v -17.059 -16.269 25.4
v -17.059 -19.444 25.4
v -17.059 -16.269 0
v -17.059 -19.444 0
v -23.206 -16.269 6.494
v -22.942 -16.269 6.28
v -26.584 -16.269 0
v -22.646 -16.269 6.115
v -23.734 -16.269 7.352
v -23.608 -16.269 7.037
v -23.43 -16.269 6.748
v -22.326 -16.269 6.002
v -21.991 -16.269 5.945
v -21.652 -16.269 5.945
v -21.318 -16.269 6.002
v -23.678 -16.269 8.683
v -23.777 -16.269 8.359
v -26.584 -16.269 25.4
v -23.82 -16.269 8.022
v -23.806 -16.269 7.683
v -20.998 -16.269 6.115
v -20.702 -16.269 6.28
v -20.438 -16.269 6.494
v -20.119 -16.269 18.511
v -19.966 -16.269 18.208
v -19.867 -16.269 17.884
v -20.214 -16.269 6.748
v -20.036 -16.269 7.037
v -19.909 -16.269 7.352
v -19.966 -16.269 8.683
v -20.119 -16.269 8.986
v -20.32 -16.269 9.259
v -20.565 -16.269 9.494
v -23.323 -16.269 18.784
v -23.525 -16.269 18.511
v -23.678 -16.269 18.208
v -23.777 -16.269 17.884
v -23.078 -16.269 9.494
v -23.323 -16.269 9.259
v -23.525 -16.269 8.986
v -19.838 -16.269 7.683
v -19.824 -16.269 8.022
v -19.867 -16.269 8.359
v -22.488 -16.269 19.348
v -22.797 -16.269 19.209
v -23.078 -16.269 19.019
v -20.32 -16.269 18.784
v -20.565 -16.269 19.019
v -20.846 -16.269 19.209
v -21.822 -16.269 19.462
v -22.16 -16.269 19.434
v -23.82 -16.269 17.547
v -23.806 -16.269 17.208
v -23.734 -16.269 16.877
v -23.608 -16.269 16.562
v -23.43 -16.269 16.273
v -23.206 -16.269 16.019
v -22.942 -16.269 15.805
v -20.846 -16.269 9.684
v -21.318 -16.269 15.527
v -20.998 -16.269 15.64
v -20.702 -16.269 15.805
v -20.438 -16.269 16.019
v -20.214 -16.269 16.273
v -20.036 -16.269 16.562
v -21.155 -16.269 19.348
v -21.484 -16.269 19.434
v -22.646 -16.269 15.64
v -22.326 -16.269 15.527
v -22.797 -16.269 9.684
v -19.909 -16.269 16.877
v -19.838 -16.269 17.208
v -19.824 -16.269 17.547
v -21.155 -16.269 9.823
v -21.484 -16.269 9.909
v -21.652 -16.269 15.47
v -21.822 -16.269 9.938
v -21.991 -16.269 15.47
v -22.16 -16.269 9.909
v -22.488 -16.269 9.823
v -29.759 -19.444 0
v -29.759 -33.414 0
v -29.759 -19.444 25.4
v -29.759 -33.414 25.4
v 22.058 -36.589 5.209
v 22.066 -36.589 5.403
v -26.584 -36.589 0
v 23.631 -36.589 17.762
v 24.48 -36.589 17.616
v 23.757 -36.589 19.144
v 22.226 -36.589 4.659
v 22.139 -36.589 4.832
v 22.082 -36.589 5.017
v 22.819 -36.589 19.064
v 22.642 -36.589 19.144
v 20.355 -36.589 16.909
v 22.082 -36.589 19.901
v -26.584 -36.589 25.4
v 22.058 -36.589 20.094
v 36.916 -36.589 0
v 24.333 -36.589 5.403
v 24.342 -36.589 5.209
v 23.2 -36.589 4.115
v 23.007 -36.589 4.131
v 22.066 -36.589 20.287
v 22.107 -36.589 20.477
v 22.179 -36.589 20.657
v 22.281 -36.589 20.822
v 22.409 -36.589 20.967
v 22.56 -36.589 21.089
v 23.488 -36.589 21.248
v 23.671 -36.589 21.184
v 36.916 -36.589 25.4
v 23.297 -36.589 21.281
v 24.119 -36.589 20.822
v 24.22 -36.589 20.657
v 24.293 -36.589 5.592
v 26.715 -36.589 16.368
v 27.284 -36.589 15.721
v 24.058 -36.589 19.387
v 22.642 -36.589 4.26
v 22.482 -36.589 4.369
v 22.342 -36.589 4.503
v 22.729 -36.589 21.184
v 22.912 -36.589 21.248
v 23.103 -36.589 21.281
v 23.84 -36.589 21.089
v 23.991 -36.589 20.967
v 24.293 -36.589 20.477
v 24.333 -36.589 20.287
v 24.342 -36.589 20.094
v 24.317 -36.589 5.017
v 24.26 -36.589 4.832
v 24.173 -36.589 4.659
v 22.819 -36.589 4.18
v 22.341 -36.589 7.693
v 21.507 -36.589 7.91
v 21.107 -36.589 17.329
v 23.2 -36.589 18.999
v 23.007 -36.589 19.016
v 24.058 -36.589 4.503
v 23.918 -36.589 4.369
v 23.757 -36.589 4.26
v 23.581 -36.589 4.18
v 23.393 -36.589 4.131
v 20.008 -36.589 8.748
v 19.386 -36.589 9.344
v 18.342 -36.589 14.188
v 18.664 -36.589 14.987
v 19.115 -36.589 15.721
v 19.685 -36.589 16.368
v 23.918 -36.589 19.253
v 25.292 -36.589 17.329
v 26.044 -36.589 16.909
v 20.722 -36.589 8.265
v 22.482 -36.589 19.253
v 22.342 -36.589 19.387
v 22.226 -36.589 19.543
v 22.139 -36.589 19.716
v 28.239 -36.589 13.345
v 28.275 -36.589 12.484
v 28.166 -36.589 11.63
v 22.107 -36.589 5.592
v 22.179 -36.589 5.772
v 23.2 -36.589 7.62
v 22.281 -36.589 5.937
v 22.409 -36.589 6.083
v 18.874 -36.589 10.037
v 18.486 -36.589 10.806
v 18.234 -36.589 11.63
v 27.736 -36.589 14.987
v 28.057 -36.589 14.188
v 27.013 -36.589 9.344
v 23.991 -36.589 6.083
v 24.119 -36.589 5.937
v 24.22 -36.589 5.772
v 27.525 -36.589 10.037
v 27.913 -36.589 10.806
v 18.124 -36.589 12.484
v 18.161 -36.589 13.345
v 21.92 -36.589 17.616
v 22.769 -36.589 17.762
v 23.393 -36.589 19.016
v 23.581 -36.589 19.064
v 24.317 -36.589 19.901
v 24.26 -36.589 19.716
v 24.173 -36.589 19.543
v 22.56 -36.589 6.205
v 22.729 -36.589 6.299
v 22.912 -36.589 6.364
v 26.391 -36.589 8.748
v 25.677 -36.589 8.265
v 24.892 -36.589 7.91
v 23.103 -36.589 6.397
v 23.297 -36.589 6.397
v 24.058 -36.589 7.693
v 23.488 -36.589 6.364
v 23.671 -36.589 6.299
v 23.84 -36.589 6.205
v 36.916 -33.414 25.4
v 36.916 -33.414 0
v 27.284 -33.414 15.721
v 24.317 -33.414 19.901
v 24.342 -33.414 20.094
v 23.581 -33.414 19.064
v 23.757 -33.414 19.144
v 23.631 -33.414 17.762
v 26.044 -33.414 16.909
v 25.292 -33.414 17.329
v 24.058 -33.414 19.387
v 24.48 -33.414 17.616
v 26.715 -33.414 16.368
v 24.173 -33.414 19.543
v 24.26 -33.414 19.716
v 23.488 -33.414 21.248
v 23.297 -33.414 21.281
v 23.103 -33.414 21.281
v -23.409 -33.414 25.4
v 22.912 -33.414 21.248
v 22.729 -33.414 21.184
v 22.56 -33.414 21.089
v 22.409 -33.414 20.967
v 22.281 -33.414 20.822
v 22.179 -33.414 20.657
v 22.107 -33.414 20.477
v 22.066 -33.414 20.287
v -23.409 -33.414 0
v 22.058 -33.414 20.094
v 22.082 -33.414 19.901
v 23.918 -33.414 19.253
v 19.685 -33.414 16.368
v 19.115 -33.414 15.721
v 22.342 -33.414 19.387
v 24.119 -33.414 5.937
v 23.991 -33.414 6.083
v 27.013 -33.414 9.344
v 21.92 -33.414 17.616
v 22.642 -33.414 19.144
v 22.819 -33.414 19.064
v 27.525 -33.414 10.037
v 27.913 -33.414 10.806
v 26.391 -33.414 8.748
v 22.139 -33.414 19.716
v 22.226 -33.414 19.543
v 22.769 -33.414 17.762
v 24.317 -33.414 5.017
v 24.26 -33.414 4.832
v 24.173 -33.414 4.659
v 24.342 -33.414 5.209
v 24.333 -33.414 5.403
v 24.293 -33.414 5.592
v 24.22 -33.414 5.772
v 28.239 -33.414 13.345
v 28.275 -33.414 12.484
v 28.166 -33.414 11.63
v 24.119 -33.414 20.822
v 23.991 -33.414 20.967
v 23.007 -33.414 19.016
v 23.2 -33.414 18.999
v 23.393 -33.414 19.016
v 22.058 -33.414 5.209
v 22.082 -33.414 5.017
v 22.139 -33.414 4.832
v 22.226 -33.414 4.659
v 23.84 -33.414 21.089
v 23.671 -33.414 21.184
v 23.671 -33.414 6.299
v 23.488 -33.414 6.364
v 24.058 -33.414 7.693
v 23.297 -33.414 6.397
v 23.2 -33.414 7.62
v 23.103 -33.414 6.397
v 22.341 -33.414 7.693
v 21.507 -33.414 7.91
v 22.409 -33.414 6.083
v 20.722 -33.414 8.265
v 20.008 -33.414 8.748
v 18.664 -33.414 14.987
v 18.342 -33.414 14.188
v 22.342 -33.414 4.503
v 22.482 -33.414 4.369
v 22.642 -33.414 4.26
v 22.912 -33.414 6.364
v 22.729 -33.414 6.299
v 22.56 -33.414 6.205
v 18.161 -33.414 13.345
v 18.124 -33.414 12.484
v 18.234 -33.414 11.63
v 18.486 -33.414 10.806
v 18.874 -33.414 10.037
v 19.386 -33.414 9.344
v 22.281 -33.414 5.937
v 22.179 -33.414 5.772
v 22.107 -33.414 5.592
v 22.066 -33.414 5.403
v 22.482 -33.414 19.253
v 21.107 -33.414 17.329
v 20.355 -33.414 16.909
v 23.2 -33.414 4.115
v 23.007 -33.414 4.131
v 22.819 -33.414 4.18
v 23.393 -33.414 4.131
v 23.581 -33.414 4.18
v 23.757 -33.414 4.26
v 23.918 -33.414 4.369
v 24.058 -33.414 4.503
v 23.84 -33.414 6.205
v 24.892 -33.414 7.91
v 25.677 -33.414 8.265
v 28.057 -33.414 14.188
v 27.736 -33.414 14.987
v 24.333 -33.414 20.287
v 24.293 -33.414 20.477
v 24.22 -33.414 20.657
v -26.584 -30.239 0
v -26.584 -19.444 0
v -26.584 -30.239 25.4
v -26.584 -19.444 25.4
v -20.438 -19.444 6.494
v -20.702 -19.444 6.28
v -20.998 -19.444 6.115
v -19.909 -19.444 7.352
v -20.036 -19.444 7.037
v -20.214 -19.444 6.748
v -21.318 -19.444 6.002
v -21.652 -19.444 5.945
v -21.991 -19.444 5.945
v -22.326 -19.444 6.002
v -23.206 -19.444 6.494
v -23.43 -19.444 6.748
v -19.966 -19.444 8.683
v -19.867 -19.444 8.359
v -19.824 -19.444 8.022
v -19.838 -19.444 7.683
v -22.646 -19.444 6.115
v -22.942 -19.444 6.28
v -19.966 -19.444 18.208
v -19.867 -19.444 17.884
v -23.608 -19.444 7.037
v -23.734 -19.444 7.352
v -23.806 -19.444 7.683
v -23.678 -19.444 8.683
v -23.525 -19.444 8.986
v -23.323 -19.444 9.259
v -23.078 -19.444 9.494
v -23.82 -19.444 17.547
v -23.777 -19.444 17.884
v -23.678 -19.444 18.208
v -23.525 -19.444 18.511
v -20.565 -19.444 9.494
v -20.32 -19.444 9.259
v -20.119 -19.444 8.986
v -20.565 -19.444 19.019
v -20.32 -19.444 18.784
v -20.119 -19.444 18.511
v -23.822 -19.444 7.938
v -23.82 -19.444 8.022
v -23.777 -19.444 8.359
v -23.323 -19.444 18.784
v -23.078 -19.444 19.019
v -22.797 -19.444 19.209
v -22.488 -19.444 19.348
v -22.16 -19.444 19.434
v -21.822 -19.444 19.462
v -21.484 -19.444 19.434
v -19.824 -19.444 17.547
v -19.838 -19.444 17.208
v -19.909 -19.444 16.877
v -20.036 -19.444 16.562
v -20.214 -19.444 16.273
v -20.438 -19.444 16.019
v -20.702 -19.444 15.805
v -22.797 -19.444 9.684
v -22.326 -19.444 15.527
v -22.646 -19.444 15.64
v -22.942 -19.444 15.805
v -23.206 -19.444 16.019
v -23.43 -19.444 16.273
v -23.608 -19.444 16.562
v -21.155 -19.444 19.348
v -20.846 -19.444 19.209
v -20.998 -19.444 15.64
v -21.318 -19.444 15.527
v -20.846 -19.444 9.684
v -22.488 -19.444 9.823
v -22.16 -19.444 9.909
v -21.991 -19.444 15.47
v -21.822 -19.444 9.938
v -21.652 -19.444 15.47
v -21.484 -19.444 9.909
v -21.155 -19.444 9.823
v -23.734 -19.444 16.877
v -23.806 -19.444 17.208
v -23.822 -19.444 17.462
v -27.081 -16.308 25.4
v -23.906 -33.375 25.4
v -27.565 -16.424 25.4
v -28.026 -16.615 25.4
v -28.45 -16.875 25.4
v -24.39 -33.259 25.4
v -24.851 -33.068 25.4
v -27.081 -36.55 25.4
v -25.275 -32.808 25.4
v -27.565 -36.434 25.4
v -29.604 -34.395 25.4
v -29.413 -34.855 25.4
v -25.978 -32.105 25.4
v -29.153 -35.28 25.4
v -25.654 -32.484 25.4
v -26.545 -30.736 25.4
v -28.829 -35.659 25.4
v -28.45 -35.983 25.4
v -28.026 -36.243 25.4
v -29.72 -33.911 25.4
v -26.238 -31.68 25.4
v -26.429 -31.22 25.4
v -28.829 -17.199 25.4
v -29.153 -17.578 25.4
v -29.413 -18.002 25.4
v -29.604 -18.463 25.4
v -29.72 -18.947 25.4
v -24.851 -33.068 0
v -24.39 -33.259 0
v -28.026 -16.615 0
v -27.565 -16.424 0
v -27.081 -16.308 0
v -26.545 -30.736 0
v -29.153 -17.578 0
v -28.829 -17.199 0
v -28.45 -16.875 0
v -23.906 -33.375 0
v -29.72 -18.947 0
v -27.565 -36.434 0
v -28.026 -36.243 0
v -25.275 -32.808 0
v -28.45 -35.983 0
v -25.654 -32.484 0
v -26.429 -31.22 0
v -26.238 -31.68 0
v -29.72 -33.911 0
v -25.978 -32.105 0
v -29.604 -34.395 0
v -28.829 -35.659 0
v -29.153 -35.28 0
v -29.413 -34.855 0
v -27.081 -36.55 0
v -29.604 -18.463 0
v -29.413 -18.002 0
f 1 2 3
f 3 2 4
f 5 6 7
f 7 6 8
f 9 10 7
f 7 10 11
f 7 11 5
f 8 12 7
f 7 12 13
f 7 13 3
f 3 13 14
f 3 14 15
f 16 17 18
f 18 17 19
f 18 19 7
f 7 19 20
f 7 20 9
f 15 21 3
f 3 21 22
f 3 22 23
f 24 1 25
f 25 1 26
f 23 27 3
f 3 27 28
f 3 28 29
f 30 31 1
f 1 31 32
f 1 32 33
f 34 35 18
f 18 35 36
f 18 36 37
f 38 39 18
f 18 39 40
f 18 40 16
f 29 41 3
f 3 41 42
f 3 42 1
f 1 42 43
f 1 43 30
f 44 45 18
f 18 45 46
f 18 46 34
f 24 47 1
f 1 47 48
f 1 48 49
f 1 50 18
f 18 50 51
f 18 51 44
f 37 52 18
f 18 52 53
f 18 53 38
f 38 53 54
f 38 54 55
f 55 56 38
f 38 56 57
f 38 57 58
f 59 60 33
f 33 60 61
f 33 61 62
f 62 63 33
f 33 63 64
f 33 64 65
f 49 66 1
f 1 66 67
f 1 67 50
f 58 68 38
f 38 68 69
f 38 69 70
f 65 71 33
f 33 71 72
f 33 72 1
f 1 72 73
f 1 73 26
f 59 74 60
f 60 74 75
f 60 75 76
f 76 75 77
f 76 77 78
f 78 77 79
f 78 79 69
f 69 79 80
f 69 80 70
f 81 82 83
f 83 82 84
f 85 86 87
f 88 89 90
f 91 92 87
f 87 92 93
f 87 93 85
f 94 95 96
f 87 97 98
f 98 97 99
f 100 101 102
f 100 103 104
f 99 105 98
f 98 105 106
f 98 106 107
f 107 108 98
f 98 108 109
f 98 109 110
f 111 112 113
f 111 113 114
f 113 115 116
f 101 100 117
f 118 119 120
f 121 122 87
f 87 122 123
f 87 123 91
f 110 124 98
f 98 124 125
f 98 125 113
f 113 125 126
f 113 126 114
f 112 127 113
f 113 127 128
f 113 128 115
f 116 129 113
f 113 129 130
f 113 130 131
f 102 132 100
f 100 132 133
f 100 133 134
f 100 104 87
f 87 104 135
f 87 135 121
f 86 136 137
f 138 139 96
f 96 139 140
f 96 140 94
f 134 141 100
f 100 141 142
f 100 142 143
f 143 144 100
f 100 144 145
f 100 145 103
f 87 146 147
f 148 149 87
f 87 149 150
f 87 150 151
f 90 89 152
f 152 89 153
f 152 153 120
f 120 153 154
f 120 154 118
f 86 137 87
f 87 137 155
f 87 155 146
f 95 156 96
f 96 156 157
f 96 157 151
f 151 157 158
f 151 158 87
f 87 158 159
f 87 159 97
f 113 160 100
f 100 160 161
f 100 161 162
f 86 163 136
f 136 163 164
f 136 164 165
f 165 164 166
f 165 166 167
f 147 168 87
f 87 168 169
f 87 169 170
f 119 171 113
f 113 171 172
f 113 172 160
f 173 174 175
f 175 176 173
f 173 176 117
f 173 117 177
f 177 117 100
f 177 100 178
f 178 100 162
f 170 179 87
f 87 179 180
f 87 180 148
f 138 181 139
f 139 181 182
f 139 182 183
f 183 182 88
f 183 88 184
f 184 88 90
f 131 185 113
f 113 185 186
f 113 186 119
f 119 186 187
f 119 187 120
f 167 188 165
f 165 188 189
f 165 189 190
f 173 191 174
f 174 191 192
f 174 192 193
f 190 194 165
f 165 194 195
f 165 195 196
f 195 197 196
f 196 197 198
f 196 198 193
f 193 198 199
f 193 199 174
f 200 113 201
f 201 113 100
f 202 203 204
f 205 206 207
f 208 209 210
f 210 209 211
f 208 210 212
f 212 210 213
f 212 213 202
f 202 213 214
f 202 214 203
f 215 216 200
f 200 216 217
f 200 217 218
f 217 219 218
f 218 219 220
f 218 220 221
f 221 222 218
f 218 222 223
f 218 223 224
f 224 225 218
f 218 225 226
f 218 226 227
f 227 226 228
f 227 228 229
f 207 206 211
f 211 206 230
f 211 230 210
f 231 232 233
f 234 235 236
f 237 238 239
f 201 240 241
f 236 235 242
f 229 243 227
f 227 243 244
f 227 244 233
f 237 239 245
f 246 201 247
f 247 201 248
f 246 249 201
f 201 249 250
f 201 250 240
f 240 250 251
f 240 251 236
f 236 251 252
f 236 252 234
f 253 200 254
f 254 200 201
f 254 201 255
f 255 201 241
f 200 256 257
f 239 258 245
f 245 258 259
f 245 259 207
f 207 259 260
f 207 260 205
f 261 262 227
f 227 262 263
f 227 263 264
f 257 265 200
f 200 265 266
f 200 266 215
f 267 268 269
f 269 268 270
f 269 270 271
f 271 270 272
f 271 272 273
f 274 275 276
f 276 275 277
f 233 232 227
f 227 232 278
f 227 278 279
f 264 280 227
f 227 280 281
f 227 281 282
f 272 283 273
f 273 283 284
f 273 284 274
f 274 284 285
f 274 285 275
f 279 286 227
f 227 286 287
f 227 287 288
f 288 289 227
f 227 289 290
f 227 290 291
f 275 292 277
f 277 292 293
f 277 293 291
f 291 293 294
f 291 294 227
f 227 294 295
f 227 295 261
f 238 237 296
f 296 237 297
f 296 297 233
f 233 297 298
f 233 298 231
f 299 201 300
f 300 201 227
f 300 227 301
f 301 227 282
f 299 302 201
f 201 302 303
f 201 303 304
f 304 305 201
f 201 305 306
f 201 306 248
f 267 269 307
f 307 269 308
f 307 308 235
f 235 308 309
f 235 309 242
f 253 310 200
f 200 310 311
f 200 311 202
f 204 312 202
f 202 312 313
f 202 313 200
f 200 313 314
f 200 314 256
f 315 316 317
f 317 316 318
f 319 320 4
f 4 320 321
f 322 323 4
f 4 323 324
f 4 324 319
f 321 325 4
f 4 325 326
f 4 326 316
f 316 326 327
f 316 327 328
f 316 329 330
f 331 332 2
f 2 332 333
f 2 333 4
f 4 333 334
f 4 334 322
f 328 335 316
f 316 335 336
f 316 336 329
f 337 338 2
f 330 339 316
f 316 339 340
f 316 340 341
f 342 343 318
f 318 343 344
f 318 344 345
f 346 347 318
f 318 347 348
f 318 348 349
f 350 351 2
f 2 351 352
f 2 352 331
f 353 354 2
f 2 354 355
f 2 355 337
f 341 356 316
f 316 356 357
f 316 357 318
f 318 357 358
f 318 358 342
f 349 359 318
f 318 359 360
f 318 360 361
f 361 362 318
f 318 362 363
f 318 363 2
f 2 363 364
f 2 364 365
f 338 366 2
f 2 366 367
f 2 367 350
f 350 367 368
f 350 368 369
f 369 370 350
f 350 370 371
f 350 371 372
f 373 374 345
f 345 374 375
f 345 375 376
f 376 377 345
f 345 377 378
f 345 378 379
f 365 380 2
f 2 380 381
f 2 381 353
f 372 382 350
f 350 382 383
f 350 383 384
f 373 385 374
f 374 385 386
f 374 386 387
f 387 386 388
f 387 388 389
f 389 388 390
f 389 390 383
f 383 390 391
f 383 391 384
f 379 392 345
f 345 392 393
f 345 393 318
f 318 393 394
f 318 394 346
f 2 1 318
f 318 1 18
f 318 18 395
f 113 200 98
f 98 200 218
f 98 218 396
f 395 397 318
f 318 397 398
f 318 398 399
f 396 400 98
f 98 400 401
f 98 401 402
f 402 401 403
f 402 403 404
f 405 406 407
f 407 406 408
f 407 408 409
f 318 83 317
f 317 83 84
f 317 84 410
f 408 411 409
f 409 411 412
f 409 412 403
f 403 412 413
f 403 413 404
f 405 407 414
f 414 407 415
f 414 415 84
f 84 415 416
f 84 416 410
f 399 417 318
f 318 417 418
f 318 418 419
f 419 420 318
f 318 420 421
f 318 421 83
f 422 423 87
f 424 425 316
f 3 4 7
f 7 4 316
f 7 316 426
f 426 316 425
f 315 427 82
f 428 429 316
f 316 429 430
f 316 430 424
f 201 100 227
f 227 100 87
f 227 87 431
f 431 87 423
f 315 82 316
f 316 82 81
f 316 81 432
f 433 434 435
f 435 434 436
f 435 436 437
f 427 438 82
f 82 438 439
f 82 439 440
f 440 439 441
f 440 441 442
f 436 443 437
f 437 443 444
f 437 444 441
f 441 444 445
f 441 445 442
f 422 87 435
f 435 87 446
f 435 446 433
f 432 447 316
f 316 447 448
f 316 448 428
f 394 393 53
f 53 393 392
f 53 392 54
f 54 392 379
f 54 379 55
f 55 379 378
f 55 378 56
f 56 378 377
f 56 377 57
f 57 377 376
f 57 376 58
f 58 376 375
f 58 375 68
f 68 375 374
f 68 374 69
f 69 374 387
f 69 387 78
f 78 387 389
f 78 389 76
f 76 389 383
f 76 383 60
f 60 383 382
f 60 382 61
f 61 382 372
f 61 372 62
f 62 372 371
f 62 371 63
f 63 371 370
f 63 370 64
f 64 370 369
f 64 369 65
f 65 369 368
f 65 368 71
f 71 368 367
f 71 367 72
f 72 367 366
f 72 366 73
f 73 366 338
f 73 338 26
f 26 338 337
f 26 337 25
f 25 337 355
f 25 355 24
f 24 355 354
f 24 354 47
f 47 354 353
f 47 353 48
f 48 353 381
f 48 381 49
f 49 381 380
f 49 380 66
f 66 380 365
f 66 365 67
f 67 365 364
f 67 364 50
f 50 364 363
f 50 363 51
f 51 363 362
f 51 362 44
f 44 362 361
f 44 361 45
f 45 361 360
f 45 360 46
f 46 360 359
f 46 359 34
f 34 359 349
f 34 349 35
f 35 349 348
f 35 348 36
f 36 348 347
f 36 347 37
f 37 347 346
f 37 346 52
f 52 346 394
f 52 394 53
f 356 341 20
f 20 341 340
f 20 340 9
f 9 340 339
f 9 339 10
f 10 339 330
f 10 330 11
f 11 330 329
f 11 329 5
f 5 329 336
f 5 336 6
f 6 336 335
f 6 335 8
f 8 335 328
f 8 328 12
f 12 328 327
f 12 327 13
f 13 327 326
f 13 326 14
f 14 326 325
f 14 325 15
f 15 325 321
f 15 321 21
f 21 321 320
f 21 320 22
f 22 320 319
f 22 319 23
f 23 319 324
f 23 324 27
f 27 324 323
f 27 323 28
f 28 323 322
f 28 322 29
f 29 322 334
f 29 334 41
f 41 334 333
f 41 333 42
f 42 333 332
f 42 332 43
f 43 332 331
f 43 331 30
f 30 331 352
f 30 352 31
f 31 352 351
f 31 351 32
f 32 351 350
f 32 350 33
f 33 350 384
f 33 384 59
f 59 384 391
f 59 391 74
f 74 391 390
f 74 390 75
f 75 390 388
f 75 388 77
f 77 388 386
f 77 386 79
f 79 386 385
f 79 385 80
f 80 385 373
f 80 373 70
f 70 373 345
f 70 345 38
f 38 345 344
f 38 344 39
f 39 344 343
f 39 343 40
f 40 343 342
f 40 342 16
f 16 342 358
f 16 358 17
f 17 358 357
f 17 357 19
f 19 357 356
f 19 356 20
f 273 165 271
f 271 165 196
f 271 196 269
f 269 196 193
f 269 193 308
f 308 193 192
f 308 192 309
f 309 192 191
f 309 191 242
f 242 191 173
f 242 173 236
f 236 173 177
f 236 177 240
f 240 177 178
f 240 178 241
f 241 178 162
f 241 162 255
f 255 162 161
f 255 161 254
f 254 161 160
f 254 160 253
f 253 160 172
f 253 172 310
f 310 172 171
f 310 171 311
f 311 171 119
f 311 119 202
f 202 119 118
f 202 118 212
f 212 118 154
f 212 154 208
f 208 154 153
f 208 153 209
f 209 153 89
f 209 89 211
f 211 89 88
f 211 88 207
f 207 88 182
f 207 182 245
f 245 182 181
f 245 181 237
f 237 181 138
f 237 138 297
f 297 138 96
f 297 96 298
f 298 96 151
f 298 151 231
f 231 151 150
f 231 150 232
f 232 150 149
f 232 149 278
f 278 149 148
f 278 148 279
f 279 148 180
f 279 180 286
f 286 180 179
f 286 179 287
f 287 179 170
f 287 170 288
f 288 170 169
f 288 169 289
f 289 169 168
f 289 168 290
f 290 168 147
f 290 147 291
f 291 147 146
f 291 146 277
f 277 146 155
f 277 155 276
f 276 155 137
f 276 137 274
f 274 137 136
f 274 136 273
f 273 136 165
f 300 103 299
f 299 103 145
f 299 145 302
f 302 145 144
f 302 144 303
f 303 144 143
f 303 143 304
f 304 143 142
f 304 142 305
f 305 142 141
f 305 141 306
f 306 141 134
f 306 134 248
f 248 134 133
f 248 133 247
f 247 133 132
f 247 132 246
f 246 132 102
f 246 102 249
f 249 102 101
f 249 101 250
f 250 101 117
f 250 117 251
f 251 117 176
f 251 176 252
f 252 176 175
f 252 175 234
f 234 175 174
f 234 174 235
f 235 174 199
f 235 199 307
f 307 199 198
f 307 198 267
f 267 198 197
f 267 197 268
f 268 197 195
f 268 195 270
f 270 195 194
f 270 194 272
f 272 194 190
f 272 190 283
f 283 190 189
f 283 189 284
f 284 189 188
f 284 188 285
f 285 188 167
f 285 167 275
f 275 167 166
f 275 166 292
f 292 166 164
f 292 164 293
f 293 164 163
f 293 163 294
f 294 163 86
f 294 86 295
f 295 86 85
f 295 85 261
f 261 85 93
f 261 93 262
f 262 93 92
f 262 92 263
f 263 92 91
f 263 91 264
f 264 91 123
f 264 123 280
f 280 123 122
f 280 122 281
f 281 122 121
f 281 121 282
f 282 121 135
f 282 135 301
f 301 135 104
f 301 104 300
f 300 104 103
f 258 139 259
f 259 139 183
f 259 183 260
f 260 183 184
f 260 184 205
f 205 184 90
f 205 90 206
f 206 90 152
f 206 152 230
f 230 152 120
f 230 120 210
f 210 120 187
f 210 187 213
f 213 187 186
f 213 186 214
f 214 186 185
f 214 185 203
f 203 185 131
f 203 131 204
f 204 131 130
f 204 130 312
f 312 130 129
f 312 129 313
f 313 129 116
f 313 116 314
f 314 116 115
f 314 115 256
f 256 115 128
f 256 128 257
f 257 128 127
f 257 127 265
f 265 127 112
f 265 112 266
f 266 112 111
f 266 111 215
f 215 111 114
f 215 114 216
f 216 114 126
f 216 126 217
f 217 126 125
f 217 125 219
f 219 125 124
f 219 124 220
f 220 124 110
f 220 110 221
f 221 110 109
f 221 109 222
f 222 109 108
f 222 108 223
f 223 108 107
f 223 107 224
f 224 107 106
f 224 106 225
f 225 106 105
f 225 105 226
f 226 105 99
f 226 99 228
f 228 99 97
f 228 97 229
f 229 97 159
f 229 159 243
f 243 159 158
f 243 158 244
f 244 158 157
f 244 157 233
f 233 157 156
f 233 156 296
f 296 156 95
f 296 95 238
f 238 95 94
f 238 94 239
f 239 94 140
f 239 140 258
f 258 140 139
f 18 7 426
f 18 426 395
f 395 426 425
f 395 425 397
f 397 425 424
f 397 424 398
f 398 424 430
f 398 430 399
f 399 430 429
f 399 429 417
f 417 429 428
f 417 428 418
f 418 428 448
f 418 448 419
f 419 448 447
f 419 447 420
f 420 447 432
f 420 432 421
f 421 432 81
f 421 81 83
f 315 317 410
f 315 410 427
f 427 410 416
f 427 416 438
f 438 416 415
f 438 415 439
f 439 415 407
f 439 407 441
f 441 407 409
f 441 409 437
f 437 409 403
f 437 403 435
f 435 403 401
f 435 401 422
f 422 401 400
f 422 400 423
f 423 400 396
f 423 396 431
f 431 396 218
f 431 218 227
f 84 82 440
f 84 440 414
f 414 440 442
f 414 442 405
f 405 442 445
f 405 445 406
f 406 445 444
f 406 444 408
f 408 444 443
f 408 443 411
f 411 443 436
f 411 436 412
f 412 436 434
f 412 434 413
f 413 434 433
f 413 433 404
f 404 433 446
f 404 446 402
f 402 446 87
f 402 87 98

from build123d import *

# Parameters (mm, degrees)
BOSS_EXTRUDE1_DEPTH       = 25.4
F_4_0MM_DOWEL_HOLE1_D     = 4
F_4_0MM_DOWEL_HOLE1_DEPTH = 3.175
CUT_EXTRUDE1_REACH        = 51.202
SKETCH7_R                 = 5.08
SKETCH7_R_2               = 1.143
FILLET1_R                 = 3.175


with BuildPart() as part:
    # Sketch1 → Boss-Extrude1 (new body)
    with BuildSketch(Plane.XY):
        Polygon((-17.059275079, -16.268900152), (-29.759275079, -16.268900152), (-29.759275079, -36.588900152), (36.915724921, -36.588900152), (36.915724921, -33.413900152), (-26.584275079, -33.413900152), (-26.584275079, -19.443900152), (-17.059275079, -19.443900152), align=None)
    extrude(amount=BOSS_EXTRUDE1_DEPTH)

    # Ø4.0mm Dowel Hole1
    with Locations(Plane(origin=(0, -16.268900152, 0), x_dir=(1, 0, 0), z_dir=(0, 1, 0))):
        with Locations((-21.821775079, -7.9375), (-21.821775079, -17.4625)):
            Hole(F_4_0MM_DOWEL_HOLE1_D / 2, depth=F_4_0MM_DOWEL_HOLE1_DEPTH)

    # Sketch7 → Cut-Extrude1 (cut, up to next)
    with BuildSketch(Plane.XZ.offset(36.588900152), mode=Mode.PRIVATE) as cut_extrude1_sk1:
        with Locations(Location((23.199724921, 12.7, 0), (0, 0, 270))):
            Circle(SKETCH7_R)
    cut_extrude1_tool1 = extrude(cut_extrude1_sk1.sketch, amount=-CUT_EXTRUDE1_REACH, mode=Mode.PRIVATE) & part.part
    # Sketch7 → Cut-Extrude1 (cut, up to next)
    with BuildSketch(Plane.XZ.offset(36.588900152), mode=Mode.PRIVATE) as cut_extrude1_sk2:
        with Locations(Location((23.199724921, 5.2578, 0), (0, 0, 270))):
            Circle(SKETCH7_R_2)
    cut_extrude1_tool2 = extrude(cut_extrude1_sk2.sketch, amount=-CUT_EXTRUDE1_REACH, mode=Mode.PRIVATE) & part.part
    # Sketch7 → Cut-Extrude1 (cut, up to next)
    with BuildSketch(Plane.XZ.offset(36.588900152), mode=Mode.PRIVATE) as cut_extrude1_sk3:
        with Locations(Location((23.199724921, 20.1422, 0), (0, 0, 270))):
            Circle(SKETCH7_R_2)
    cut_extrude1_tool3 = extrude(cut_extrude1_sk3.sketch, amount=-CUT_EXTRUDE1_REACH, mode=Mode.PRIVATE) & part.part
    add(cut_extrude1_tool1.solids().sort_by_distance((23.199725, -36.5889, 12.7))[0], mode=Mode.SUBTRACT)
    add(cut_extrude1_tool2.solids().sort_by_distance((23.199725, -36.5889, 5.2578))[0], mode=Mode.SUBTRACT)
    add(cut_extrude1_tool3.solids().sort_by_distance((23.199725, -36.5889, 20.1422))[0], mode=Mode.SUBTRACT)

    # Fillet1
    fillet1_edges = [part.edges().sort_by_distance(p)[0] for p in [
        (-26.584275079, -33.413900152, 12.7),
        (-29.759275079, -36.588900152, 12.7),
        (-29.759275079, -16.268900152, 12.7),
    ]]
    fillet(fillet1_edges, radius=FILLET1_R)


solid = part.part
